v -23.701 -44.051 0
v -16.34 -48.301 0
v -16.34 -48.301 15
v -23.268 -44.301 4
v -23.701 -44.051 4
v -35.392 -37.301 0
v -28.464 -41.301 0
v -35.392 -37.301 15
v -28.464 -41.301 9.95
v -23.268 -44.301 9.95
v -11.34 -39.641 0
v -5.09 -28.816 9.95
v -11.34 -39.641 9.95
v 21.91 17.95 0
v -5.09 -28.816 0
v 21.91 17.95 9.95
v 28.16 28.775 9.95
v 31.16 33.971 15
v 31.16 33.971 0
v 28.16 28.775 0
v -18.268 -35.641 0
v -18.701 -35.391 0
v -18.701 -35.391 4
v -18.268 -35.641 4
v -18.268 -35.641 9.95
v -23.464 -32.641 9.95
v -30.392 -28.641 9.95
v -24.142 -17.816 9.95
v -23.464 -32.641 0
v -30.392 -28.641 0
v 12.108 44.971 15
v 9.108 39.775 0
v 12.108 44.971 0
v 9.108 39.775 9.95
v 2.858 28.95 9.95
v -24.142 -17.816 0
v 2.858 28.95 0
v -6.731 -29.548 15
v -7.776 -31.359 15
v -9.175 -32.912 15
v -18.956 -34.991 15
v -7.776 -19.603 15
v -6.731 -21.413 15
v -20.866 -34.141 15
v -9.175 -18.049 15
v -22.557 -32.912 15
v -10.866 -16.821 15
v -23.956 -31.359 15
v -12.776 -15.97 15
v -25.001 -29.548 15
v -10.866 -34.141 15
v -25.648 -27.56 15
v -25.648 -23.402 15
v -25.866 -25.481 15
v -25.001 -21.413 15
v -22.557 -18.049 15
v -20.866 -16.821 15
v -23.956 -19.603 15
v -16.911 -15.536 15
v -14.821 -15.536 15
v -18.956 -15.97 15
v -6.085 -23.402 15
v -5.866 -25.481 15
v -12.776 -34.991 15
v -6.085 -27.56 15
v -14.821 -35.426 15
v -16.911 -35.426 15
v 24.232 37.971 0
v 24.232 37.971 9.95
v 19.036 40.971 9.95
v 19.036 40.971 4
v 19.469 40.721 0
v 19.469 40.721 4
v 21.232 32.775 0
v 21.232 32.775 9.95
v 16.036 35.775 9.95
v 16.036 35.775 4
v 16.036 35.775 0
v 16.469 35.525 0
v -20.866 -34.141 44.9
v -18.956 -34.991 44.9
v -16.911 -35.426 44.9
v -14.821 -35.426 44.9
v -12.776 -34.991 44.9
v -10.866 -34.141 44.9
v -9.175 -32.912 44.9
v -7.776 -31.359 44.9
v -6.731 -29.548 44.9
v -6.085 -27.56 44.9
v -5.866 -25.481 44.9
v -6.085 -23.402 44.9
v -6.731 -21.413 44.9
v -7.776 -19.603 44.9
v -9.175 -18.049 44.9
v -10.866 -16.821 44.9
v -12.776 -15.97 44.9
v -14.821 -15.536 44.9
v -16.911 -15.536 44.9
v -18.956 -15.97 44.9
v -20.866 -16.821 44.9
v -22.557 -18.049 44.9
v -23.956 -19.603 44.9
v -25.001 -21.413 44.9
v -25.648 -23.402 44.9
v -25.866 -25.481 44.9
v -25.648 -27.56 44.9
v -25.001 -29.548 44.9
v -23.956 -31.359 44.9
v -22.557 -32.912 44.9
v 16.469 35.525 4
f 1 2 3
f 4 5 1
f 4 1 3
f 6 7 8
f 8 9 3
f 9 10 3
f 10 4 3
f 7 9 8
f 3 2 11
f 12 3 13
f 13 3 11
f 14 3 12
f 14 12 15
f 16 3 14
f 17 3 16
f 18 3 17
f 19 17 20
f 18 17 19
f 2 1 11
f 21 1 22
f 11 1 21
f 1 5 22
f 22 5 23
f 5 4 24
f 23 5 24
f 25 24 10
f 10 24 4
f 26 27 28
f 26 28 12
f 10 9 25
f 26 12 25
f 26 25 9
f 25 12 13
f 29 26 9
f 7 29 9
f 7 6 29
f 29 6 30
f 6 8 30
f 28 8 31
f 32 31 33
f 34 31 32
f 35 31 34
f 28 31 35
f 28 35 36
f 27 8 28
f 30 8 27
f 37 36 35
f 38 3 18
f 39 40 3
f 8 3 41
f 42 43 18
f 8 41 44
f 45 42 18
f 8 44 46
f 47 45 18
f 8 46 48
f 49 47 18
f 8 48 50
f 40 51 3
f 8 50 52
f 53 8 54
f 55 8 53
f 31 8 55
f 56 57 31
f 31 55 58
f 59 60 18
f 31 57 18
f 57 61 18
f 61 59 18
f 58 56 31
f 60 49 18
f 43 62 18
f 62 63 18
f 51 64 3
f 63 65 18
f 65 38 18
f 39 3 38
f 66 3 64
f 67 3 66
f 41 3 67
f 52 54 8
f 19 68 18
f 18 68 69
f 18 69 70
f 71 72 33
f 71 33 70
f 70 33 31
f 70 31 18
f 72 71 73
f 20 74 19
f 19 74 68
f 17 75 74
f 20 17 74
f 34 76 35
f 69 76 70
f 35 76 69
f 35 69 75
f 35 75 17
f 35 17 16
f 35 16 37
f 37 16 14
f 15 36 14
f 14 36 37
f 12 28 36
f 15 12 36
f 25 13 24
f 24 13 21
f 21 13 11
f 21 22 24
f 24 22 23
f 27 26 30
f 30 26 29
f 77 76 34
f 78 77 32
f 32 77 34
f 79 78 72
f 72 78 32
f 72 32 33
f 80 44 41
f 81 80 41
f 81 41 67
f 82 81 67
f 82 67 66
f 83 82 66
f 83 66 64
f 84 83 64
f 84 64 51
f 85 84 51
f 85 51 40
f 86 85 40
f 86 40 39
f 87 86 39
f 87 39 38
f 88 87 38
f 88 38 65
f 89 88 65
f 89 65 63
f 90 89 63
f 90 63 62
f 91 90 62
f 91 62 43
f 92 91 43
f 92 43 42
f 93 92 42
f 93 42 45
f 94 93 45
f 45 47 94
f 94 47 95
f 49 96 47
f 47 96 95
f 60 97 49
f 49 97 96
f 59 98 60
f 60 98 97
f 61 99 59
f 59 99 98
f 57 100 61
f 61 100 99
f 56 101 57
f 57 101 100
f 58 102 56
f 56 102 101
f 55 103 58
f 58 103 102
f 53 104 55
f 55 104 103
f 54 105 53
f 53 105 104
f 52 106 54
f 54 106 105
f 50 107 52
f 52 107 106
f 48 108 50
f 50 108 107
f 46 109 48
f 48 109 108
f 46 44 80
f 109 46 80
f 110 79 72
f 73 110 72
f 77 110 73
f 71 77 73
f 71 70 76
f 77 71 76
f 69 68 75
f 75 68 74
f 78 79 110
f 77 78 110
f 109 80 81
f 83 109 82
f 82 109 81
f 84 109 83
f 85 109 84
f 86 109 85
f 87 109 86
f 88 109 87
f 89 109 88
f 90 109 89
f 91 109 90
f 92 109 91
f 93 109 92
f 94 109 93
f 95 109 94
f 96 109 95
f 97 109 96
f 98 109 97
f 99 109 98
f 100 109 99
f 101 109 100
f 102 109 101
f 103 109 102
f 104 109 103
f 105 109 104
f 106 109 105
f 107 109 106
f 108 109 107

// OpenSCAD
module crank() { 
	rotate([0,0,60])translate([-50,-10,0]) union() {
		difference(){ 
			cube([95,22,15]);
			translate([10,-0.5,-0.05])cube([12.5,23,10]);
			translate([76.5,-0.5,-0.05])cube([12.5,23,10]);
			translate([-0.1,8,-0.05])cube([10.2,6,10]);
			translate([85.1,8,-0.05])cube([10.2,6,10]);
		}
		translate([20,11,14.9])cylinder(30,10,10);
		translate([0,8,0])cube([10,0.5,4]);
		translate([89,13.5,0])cube([6,0.5,4]);
	}
}

crank();
